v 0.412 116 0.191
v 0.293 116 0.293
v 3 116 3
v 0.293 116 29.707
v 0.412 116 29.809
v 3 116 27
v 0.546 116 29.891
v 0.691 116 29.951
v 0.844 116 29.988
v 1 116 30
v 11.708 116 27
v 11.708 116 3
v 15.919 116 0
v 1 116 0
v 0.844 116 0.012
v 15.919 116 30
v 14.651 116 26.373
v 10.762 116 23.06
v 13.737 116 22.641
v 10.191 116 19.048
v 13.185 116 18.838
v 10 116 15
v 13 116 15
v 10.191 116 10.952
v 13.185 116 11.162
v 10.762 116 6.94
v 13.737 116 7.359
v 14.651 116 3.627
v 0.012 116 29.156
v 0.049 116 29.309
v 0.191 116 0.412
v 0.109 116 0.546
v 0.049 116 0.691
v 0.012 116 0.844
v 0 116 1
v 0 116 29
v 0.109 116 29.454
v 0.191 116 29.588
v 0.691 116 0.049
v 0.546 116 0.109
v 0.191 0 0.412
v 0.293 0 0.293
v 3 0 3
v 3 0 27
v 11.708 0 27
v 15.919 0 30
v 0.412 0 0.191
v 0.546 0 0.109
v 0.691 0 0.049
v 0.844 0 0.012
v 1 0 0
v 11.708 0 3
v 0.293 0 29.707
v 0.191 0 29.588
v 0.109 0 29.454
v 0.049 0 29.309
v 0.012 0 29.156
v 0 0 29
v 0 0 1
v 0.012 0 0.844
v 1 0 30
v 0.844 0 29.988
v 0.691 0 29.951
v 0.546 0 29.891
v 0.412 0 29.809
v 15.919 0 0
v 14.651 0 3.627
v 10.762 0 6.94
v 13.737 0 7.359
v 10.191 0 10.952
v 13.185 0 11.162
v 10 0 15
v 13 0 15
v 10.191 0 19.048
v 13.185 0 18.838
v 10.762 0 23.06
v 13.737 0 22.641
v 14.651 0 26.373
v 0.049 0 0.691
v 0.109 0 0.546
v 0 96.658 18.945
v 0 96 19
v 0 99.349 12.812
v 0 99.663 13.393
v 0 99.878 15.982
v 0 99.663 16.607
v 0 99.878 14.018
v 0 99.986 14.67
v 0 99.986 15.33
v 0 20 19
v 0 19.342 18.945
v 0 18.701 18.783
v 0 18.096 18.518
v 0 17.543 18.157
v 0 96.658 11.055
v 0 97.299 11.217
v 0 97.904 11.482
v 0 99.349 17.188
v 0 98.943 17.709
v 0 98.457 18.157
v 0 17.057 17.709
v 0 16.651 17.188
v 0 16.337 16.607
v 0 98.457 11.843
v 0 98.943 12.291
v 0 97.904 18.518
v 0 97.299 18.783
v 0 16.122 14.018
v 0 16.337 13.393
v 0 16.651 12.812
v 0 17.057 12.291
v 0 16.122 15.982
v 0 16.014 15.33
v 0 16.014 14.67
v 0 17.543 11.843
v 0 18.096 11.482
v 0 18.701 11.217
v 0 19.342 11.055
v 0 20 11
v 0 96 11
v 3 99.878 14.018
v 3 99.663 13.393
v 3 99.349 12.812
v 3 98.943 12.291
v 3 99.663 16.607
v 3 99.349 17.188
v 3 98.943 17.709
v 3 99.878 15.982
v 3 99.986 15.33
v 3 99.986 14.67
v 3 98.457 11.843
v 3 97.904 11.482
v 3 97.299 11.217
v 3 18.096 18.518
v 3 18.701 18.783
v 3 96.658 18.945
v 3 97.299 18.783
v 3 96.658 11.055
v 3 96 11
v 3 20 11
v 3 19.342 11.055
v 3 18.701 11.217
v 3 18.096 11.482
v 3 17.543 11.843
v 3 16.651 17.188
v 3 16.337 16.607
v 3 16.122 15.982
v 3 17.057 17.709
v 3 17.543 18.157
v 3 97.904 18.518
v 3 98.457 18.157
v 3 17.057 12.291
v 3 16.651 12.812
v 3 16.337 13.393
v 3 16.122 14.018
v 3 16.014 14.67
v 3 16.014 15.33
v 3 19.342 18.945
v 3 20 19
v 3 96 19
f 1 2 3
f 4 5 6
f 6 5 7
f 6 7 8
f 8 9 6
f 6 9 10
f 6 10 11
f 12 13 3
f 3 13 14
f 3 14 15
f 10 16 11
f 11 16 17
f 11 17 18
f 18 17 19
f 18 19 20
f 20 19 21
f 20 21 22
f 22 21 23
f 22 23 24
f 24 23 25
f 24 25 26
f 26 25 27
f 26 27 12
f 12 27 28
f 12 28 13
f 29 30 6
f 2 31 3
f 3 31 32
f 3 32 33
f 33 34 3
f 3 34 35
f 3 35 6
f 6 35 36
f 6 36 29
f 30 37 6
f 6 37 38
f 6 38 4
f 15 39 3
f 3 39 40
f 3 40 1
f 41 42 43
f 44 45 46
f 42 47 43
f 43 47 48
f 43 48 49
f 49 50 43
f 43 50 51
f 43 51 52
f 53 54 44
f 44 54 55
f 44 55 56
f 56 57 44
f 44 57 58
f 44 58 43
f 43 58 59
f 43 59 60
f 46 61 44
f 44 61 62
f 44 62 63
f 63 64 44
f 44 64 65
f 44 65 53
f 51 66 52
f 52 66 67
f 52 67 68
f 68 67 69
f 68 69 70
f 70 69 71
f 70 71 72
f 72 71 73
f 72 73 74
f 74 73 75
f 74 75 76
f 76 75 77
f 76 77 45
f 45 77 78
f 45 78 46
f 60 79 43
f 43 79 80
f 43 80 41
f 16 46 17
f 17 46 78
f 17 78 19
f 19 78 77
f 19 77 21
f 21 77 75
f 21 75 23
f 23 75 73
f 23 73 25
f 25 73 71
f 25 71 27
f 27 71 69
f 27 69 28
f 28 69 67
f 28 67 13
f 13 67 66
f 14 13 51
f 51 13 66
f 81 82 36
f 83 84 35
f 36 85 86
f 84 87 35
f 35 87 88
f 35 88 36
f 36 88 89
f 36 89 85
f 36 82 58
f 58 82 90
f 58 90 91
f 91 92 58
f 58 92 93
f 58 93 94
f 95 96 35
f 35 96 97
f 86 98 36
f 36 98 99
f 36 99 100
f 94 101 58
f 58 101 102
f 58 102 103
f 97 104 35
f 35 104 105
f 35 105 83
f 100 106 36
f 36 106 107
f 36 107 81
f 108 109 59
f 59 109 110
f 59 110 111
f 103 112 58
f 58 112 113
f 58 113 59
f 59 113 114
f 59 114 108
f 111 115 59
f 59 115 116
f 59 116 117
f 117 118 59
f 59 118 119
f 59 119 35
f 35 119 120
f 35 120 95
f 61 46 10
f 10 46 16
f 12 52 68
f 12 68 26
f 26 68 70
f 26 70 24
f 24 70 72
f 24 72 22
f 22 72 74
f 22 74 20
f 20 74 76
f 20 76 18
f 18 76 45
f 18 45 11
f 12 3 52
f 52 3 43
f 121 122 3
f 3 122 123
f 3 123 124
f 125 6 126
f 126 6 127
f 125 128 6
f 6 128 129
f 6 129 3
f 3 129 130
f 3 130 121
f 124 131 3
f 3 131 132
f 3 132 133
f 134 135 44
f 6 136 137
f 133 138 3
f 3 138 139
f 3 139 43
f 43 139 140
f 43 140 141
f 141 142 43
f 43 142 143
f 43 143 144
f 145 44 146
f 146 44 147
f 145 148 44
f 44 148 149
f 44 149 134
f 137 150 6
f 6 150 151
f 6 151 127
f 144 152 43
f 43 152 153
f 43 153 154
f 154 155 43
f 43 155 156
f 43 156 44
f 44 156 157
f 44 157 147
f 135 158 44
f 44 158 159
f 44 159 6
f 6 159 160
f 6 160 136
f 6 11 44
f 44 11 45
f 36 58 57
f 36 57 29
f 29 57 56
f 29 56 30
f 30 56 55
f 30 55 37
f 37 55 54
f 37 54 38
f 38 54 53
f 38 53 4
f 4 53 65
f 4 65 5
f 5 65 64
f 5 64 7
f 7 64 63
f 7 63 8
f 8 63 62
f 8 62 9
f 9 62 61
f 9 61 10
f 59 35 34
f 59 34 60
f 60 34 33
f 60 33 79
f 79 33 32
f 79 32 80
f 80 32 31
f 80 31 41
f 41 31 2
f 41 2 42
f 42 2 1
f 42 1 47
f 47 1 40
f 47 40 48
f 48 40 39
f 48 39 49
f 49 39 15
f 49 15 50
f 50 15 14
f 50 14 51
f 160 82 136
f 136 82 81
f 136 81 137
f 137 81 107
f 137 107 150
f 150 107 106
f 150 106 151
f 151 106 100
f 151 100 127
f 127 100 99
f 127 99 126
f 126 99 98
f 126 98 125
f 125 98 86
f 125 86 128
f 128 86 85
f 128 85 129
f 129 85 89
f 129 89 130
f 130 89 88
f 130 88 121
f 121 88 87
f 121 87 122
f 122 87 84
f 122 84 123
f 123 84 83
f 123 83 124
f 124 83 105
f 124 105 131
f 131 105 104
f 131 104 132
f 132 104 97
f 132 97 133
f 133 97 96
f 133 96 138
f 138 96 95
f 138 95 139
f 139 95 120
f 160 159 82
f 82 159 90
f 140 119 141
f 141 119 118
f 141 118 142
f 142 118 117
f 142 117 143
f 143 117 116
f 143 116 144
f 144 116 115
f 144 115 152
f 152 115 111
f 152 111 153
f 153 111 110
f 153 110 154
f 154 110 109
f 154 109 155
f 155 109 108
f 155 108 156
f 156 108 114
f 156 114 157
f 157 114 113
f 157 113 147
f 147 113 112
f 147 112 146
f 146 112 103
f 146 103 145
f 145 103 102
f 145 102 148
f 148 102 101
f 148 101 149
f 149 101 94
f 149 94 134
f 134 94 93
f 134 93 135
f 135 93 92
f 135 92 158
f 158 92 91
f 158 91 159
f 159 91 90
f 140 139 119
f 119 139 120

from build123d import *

# Parameters (mm, degrees)
BOSS_EXTRUDE1_DEPTH = 116
SHELL1_T            = -3
FILLET1_R           = 1
CUT_EXTRUDE1_DEPTH  = 3


with BuildPart() as part:
    # Sketch1 → Boss-Extrude1 (new body)
    with BuildSketch(Plane(origin=(0, 0, 0), x_dir=(1, 0, 0), z_dir=(0, 1, 0))):
        with BuildLine():
            ThreePointArc((15.919007565, 0), (13, -15), (15.919007565, -30))
            Line((15.919007565, -30), (0, -30))
            Line((0, -30), (0, 0))
            Line((0, 0), (15.919007565, 0))
        make_face()
    extrude(amount=BOSS_EXTRUDE1_DEPTH)

    # Shell1
    shell1_openings = [part.faces().sort_by_distance(p)[0] for p in [
        (7.006000275, 116, 15),
        (7.006000275, 0, 15),
    ]]
    offset(amount=SHELL1_T, openings=shell1_openings, kind=Kind.INTERSECTION)

    # Fillet1
    fillet1_edges = [part.edges().sort_by_distance(p)[0] for p in [
        (0, 58, 30),
        (0, 58, 0),
    ]]
    fillet(fillet1_edges, radius=FILLET1_R)

    # Sketch2 → Cut-Extrude1 (cut)
    with BuildSketch(Plane.ZY):
        with BuildLine():
            Line((19, 96), (19, 20))
            ThreePointArc((19, 20), (15, 16), (11, 20))
            Line((11, 20), (11, 96))
            ThreePointArc((11, 96), (15, 100), (19, 96))
        make_face()
    extrude(amount=-CUT_EXTRUDE1_DEPTH, mode=Mode.SUBTRACT)


solid = part.part
